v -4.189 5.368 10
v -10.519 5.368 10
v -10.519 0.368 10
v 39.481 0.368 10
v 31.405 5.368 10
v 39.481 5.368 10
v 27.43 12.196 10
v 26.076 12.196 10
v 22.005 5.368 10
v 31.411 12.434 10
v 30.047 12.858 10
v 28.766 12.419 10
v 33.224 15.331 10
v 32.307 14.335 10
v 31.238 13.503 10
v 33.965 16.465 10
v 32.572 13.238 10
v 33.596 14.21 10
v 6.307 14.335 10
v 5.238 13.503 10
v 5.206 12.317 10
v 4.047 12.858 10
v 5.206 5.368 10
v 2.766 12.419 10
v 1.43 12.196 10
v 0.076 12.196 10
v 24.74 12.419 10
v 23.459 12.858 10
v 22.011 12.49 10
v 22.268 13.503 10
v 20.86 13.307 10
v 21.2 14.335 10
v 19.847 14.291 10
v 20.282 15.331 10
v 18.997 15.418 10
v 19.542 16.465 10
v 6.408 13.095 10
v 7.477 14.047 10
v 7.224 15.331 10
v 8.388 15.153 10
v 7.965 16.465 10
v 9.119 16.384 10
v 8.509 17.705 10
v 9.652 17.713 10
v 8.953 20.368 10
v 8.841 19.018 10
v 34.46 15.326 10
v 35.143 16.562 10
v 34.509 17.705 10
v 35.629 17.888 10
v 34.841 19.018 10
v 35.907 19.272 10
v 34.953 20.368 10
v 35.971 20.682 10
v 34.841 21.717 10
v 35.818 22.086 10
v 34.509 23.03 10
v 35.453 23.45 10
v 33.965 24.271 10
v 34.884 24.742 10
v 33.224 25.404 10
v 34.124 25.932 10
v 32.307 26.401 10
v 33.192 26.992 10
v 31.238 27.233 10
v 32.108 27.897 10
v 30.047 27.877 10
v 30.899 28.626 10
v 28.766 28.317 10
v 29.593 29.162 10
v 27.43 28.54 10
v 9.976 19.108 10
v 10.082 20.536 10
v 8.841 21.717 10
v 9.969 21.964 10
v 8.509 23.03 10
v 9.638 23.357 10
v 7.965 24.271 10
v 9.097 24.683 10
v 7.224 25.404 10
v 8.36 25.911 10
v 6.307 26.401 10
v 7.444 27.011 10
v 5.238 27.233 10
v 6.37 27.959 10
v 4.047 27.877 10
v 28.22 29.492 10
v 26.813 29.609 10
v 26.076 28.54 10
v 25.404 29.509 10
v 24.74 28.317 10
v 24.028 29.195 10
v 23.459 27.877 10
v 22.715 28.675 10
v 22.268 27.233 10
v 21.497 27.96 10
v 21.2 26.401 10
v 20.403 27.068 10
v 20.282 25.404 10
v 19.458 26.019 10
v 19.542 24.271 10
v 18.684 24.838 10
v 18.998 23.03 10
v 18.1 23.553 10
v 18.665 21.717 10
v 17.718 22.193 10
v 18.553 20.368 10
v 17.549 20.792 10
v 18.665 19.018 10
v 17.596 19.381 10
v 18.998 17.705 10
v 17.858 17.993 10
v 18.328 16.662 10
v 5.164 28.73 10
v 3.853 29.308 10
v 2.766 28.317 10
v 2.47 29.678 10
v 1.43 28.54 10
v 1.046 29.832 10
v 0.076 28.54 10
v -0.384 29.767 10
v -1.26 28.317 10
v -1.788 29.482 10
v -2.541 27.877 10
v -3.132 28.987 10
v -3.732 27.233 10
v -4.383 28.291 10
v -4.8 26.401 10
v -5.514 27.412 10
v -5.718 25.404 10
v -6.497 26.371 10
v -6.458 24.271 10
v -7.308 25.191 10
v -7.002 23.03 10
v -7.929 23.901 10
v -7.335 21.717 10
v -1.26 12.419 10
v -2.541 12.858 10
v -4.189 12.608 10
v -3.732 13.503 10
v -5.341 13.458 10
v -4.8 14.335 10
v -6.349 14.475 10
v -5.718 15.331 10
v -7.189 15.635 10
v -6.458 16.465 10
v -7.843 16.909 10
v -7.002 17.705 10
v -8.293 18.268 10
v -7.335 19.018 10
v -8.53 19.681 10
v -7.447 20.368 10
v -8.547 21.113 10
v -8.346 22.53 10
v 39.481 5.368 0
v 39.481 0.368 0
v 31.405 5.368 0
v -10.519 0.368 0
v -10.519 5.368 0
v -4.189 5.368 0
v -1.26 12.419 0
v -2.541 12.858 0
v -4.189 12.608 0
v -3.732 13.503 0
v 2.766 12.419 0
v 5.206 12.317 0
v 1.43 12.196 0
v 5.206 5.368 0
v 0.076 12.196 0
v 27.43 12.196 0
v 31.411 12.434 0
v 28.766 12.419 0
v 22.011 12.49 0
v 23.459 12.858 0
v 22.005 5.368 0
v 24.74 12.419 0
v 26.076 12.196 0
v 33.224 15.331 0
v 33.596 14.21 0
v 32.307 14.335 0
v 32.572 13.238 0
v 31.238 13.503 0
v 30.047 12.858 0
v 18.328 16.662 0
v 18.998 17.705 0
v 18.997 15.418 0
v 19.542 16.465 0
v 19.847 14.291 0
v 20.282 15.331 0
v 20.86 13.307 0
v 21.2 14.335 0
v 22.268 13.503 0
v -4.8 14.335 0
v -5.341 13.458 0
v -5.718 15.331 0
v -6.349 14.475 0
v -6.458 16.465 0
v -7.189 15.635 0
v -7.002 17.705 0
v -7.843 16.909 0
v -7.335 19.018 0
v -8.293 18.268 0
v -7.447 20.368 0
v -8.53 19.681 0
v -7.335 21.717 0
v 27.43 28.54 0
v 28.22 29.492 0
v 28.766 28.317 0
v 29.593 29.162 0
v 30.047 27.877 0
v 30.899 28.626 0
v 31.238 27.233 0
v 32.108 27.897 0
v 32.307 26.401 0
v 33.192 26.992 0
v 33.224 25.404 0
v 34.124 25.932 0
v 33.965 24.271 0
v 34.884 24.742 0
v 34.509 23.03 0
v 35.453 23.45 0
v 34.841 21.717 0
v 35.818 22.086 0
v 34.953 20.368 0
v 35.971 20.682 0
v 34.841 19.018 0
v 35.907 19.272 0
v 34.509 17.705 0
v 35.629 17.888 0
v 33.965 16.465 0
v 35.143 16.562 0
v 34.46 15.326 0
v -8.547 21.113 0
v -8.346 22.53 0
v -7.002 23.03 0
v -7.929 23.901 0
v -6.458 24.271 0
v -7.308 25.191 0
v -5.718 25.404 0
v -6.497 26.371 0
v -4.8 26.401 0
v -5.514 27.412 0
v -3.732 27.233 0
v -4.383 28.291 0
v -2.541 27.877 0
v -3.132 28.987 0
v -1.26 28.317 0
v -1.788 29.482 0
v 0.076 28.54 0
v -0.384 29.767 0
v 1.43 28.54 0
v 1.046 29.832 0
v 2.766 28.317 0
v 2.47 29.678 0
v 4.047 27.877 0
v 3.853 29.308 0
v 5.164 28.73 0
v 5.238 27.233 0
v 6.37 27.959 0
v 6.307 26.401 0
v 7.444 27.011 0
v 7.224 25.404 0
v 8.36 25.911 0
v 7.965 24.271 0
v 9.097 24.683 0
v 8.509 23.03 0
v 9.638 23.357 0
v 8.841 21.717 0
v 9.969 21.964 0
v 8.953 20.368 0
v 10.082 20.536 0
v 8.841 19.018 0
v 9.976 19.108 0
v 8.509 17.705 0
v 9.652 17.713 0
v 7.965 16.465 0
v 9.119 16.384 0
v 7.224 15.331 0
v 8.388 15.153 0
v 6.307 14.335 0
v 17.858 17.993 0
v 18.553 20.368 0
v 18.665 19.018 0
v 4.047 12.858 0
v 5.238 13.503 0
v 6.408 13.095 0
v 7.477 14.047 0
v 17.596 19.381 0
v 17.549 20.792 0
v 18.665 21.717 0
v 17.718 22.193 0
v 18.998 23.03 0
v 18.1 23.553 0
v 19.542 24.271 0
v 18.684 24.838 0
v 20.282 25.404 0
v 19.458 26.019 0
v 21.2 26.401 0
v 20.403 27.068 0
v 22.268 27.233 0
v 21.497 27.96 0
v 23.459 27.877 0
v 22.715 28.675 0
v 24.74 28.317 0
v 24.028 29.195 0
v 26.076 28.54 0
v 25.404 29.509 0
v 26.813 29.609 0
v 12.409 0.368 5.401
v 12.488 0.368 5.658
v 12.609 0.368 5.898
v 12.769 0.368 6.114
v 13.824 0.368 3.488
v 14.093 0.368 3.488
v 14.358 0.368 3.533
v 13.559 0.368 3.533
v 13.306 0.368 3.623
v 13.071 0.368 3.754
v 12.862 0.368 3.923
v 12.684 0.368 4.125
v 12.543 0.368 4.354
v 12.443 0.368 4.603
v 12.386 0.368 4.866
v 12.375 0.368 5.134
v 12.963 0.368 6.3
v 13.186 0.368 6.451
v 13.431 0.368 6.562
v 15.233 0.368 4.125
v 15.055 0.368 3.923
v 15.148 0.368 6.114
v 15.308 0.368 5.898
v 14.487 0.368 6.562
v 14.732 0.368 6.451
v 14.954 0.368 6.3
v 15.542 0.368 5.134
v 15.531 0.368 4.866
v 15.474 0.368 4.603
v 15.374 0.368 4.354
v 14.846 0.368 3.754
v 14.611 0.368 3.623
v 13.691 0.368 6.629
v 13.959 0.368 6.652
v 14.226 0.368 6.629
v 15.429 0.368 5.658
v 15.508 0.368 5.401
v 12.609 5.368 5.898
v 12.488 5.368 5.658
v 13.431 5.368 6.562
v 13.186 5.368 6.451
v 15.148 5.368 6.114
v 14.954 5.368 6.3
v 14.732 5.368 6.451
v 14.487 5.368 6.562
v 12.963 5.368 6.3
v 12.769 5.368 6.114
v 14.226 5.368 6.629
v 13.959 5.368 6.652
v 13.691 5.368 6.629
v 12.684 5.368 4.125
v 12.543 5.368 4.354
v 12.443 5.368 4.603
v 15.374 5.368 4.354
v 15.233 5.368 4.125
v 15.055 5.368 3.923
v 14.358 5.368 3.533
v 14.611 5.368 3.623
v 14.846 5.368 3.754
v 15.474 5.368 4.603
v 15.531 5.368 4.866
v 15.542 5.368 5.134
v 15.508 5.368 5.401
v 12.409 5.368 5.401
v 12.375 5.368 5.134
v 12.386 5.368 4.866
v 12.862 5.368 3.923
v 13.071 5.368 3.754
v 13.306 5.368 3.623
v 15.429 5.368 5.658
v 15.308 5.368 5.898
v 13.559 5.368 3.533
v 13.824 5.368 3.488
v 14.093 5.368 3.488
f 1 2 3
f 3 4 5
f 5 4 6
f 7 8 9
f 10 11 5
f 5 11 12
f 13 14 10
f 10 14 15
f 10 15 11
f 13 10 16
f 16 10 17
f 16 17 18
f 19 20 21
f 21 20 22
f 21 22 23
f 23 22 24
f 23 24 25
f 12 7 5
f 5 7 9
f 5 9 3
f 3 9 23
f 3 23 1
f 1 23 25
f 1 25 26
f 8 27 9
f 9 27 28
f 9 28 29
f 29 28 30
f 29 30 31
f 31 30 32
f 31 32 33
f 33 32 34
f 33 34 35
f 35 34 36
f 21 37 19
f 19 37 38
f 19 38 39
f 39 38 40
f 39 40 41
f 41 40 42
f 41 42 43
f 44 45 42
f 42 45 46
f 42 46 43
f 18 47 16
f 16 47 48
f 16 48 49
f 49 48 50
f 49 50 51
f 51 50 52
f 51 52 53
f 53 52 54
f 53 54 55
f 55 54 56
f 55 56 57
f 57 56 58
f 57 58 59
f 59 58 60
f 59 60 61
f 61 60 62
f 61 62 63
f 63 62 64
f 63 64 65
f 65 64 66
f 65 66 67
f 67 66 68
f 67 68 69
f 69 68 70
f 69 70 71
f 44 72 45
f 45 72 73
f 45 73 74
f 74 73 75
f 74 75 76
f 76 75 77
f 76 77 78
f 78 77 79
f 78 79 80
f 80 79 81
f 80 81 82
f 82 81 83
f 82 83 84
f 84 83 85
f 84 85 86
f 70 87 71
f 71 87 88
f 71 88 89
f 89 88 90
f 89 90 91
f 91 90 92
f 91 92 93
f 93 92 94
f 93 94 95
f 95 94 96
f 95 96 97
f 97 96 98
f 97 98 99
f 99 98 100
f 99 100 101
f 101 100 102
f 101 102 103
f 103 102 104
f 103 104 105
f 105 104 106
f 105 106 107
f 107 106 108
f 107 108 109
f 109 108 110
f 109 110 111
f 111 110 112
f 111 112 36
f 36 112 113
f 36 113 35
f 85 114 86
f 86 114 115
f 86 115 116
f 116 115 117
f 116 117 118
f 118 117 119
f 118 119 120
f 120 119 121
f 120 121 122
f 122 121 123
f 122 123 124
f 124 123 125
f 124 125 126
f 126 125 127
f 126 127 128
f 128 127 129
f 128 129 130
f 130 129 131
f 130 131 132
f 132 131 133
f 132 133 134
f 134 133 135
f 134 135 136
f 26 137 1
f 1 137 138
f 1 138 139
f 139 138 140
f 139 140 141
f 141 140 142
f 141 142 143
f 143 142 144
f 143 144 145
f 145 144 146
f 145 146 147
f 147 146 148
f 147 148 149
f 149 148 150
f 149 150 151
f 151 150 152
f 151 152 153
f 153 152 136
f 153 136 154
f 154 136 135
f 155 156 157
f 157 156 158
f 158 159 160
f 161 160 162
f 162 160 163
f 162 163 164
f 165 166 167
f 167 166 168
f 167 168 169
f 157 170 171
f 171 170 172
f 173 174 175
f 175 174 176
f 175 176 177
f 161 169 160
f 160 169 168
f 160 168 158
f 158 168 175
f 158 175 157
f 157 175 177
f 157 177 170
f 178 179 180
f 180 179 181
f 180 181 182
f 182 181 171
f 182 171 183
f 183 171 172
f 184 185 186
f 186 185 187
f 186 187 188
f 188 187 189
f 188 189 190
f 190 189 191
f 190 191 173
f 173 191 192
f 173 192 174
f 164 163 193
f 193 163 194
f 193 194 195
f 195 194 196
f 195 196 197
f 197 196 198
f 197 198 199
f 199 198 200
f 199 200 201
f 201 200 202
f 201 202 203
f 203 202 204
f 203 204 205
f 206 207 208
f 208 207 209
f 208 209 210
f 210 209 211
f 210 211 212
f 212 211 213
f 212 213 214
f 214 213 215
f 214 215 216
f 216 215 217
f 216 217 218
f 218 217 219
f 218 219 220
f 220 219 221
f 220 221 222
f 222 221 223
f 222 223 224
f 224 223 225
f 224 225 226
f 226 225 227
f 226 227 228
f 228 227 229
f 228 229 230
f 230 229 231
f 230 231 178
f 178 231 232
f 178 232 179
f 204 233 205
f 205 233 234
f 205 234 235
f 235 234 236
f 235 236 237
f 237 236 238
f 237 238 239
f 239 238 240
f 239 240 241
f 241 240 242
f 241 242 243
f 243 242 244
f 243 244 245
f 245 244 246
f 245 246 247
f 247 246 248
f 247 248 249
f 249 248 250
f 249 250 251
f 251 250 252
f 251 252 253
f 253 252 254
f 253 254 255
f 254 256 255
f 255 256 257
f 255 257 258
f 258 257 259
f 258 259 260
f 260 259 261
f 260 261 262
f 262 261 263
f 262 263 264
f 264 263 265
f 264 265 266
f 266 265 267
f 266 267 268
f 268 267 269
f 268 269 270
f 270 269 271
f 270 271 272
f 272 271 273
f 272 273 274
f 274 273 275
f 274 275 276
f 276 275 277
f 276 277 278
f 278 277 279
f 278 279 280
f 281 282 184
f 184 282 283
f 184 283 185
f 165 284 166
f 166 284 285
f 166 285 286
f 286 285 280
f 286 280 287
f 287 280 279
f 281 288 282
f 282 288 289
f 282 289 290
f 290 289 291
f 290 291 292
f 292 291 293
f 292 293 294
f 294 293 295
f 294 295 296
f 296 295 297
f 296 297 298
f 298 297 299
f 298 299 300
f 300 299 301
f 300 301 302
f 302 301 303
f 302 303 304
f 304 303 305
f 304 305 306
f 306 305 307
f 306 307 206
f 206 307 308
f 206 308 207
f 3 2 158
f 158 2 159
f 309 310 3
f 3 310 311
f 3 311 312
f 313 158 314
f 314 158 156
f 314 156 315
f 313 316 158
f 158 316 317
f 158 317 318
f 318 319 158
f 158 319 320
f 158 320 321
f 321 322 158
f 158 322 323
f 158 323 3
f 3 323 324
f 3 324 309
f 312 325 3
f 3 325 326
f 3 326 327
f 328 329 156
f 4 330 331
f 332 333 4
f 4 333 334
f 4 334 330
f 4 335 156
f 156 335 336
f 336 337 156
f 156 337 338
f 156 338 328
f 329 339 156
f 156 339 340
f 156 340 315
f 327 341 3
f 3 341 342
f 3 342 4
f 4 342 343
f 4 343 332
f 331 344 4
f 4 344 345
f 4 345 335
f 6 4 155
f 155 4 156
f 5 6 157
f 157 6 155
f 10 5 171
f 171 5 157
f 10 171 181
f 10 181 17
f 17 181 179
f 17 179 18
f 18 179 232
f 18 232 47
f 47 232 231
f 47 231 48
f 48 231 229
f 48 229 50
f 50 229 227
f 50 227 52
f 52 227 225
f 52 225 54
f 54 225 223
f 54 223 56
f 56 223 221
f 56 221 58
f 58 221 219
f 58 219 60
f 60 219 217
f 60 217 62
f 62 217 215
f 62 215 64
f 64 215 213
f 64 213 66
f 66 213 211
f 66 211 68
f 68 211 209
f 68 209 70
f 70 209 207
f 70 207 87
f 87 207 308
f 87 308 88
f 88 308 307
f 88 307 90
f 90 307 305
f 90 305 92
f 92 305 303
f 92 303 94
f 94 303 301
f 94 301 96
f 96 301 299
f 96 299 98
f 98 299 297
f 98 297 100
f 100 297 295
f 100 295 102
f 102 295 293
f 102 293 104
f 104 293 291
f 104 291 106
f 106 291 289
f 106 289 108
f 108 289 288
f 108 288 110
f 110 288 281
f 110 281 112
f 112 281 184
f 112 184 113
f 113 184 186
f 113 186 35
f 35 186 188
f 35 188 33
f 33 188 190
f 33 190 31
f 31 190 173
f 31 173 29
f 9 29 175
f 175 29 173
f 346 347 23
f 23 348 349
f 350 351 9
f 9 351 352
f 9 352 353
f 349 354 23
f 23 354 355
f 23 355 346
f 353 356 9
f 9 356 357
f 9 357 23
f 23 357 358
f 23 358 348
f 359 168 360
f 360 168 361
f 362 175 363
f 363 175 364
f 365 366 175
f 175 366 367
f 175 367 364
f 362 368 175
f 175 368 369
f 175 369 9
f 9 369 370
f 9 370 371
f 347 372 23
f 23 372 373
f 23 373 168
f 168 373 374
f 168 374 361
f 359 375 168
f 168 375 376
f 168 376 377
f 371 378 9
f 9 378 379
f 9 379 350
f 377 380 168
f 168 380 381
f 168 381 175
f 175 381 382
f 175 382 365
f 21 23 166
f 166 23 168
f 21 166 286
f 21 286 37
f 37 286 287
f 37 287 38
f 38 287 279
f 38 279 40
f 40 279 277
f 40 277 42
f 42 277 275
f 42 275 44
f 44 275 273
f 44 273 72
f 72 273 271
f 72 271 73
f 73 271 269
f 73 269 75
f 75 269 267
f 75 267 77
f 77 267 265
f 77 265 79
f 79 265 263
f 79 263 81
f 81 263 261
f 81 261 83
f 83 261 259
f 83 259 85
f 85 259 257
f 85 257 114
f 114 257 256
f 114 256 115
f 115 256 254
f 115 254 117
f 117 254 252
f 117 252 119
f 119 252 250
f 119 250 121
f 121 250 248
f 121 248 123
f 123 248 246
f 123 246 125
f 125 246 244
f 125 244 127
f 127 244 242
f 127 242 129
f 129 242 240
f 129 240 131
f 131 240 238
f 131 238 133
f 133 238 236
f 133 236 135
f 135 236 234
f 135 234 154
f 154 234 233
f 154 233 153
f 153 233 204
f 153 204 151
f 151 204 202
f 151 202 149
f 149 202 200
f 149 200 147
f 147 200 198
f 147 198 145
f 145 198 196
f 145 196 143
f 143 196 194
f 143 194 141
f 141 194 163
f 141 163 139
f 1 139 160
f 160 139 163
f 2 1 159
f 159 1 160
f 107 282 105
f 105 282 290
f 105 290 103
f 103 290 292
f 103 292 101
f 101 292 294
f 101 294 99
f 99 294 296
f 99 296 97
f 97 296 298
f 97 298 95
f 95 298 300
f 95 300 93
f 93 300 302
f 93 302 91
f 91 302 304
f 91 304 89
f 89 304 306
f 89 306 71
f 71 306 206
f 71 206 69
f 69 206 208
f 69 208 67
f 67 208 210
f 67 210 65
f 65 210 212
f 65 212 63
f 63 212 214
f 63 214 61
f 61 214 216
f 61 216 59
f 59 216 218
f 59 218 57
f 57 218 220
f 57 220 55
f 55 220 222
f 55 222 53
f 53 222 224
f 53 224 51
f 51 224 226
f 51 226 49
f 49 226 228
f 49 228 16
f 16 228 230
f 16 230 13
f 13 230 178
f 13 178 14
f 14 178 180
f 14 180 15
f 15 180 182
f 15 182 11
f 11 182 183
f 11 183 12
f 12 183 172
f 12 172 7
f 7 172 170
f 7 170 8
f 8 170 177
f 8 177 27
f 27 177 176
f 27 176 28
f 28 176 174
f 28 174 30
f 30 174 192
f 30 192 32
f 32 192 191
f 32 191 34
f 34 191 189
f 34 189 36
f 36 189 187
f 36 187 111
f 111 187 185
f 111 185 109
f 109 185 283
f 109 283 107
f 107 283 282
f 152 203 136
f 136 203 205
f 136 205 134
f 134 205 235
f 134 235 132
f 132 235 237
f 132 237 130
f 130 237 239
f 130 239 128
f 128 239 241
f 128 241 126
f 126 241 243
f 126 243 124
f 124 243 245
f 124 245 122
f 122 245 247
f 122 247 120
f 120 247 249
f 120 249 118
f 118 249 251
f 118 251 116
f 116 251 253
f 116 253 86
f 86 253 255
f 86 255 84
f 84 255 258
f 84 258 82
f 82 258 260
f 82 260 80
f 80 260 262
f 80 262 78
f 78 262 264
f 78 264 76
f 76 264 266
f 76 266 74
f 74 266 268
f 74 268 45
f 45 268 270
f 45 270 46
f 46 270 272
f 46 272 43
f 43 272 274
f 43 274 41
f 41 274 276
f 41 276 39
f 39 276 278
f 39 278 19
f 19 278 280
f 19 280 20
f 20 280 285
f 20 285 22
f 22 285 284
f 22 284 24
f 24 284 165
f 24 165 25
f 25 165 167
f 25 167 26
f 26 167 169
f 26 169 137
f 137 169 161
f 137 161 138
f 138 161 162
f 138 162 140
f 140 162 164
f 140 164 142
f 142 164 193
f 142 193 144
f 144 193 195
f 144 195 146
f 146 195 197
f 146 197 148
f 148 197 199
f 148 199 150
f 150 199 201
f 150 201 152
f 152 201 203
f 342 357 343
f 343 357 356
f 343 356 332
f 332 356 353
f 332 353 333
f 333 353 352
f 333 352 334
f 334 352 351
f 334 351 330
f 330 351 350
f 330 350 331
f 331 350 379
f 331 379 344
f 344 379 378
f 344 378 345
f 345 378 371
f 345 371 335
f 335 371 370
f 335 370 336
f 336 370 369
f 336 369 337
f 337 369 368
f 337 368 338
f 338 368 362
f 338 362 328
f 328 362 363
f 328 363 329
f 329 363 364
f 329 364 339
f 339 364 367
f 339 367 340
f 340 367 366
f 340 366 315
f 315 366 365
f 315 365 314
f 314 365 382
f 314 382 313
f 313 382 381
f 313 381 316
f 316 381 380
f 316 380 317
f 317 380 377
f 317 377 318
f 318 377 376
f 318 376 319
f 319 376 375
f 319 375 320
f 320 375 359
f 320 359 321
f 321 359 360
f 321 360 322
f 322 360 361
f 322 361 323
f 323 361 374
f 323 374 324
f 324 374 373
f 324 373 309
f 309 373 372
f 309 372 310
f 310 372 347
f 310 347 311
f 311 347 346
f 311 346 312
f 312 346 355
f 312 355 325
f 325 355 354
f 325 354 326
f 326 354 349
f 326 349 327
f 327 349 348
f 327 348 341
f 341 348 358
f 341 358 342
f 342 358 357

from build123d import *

# Parameters (mm, degrees)
SKETCH1_R           = 8.2
BOSS_EXTRUDE1_DEPTH = 10
SKETCH2_R           = 1.585
CUT_EXTRUDE1_DEPTH  = 10


with BuildPart() as part:
    # Sketch1 → Boss-Extrude1 (new body)
    with BuildSketch(Plane.XY):
        with BuildLine():
            Line((-4.18853286, 12.607697881), (-4.18853286, 5.367776119))
            Line((-4.18853286, 5.367776119), (-10.519480519, 5.367776119))
            Line((-10.519480519, 5.367776119), (-10.519480519, 0.367776119))
            Line((-10.519480519, 0.367776119), (39.480519481, 0.367776119))
            Line((39.480519481, 0.367776119), (39.480519481, 5.367776119))
            Line((39.480519481, 5.367776119), (31.405454323, 5.367776119))
            Line((31.405454323, 5.367776119), (31.410877884, 12.433894833))
            ThreePointArc((31.410877884, 12.433894833), (26.812708154, 29.608501659), (22.010917954, 12.489708029))
            Line((22.010917954, 12.489708029), (22.005451554, 5.367776119))
            Line((22.005451554, 5.367776119), (5.205765597, 5.367776119))
            Line((5.205765597, 5.367776119), (5.205765597, 12.316995042))
            ThreePointArc((5.205765597, 12.316995042), (1.04612148, 29.83226088), (-4.18853286, 12.607697881))
        make_face()
        with Locations((26.753246753, 20.367776119)):
            Circle(SKETCH1_R, mode=Mode.SUBTRACT)
        with Locations((0.753246753, 20.367776119)):
            Circle(SKETCH1_R, mode=Mode.SUBTRACT)
    extrude(amount=BOSS_EXTRUDE1_DEPTH)

    # Sketch2 → Cut-Extrude1 (cut)
    with BuildSketch(Plane(origin=(0, 5.367776119, 0), x_dir=(1, 0, 0), z_dir=(0, 1, 0))):
        with Locations(Location((13.958626021, -5.067111952, 0), (0, 0, 270))):
            Circle(SKETCH2_R)
    extrude(amount=-CUT_EXTRUDE1_DEPTH, mode=Mode.SUBTRACT)


solid = part.part
